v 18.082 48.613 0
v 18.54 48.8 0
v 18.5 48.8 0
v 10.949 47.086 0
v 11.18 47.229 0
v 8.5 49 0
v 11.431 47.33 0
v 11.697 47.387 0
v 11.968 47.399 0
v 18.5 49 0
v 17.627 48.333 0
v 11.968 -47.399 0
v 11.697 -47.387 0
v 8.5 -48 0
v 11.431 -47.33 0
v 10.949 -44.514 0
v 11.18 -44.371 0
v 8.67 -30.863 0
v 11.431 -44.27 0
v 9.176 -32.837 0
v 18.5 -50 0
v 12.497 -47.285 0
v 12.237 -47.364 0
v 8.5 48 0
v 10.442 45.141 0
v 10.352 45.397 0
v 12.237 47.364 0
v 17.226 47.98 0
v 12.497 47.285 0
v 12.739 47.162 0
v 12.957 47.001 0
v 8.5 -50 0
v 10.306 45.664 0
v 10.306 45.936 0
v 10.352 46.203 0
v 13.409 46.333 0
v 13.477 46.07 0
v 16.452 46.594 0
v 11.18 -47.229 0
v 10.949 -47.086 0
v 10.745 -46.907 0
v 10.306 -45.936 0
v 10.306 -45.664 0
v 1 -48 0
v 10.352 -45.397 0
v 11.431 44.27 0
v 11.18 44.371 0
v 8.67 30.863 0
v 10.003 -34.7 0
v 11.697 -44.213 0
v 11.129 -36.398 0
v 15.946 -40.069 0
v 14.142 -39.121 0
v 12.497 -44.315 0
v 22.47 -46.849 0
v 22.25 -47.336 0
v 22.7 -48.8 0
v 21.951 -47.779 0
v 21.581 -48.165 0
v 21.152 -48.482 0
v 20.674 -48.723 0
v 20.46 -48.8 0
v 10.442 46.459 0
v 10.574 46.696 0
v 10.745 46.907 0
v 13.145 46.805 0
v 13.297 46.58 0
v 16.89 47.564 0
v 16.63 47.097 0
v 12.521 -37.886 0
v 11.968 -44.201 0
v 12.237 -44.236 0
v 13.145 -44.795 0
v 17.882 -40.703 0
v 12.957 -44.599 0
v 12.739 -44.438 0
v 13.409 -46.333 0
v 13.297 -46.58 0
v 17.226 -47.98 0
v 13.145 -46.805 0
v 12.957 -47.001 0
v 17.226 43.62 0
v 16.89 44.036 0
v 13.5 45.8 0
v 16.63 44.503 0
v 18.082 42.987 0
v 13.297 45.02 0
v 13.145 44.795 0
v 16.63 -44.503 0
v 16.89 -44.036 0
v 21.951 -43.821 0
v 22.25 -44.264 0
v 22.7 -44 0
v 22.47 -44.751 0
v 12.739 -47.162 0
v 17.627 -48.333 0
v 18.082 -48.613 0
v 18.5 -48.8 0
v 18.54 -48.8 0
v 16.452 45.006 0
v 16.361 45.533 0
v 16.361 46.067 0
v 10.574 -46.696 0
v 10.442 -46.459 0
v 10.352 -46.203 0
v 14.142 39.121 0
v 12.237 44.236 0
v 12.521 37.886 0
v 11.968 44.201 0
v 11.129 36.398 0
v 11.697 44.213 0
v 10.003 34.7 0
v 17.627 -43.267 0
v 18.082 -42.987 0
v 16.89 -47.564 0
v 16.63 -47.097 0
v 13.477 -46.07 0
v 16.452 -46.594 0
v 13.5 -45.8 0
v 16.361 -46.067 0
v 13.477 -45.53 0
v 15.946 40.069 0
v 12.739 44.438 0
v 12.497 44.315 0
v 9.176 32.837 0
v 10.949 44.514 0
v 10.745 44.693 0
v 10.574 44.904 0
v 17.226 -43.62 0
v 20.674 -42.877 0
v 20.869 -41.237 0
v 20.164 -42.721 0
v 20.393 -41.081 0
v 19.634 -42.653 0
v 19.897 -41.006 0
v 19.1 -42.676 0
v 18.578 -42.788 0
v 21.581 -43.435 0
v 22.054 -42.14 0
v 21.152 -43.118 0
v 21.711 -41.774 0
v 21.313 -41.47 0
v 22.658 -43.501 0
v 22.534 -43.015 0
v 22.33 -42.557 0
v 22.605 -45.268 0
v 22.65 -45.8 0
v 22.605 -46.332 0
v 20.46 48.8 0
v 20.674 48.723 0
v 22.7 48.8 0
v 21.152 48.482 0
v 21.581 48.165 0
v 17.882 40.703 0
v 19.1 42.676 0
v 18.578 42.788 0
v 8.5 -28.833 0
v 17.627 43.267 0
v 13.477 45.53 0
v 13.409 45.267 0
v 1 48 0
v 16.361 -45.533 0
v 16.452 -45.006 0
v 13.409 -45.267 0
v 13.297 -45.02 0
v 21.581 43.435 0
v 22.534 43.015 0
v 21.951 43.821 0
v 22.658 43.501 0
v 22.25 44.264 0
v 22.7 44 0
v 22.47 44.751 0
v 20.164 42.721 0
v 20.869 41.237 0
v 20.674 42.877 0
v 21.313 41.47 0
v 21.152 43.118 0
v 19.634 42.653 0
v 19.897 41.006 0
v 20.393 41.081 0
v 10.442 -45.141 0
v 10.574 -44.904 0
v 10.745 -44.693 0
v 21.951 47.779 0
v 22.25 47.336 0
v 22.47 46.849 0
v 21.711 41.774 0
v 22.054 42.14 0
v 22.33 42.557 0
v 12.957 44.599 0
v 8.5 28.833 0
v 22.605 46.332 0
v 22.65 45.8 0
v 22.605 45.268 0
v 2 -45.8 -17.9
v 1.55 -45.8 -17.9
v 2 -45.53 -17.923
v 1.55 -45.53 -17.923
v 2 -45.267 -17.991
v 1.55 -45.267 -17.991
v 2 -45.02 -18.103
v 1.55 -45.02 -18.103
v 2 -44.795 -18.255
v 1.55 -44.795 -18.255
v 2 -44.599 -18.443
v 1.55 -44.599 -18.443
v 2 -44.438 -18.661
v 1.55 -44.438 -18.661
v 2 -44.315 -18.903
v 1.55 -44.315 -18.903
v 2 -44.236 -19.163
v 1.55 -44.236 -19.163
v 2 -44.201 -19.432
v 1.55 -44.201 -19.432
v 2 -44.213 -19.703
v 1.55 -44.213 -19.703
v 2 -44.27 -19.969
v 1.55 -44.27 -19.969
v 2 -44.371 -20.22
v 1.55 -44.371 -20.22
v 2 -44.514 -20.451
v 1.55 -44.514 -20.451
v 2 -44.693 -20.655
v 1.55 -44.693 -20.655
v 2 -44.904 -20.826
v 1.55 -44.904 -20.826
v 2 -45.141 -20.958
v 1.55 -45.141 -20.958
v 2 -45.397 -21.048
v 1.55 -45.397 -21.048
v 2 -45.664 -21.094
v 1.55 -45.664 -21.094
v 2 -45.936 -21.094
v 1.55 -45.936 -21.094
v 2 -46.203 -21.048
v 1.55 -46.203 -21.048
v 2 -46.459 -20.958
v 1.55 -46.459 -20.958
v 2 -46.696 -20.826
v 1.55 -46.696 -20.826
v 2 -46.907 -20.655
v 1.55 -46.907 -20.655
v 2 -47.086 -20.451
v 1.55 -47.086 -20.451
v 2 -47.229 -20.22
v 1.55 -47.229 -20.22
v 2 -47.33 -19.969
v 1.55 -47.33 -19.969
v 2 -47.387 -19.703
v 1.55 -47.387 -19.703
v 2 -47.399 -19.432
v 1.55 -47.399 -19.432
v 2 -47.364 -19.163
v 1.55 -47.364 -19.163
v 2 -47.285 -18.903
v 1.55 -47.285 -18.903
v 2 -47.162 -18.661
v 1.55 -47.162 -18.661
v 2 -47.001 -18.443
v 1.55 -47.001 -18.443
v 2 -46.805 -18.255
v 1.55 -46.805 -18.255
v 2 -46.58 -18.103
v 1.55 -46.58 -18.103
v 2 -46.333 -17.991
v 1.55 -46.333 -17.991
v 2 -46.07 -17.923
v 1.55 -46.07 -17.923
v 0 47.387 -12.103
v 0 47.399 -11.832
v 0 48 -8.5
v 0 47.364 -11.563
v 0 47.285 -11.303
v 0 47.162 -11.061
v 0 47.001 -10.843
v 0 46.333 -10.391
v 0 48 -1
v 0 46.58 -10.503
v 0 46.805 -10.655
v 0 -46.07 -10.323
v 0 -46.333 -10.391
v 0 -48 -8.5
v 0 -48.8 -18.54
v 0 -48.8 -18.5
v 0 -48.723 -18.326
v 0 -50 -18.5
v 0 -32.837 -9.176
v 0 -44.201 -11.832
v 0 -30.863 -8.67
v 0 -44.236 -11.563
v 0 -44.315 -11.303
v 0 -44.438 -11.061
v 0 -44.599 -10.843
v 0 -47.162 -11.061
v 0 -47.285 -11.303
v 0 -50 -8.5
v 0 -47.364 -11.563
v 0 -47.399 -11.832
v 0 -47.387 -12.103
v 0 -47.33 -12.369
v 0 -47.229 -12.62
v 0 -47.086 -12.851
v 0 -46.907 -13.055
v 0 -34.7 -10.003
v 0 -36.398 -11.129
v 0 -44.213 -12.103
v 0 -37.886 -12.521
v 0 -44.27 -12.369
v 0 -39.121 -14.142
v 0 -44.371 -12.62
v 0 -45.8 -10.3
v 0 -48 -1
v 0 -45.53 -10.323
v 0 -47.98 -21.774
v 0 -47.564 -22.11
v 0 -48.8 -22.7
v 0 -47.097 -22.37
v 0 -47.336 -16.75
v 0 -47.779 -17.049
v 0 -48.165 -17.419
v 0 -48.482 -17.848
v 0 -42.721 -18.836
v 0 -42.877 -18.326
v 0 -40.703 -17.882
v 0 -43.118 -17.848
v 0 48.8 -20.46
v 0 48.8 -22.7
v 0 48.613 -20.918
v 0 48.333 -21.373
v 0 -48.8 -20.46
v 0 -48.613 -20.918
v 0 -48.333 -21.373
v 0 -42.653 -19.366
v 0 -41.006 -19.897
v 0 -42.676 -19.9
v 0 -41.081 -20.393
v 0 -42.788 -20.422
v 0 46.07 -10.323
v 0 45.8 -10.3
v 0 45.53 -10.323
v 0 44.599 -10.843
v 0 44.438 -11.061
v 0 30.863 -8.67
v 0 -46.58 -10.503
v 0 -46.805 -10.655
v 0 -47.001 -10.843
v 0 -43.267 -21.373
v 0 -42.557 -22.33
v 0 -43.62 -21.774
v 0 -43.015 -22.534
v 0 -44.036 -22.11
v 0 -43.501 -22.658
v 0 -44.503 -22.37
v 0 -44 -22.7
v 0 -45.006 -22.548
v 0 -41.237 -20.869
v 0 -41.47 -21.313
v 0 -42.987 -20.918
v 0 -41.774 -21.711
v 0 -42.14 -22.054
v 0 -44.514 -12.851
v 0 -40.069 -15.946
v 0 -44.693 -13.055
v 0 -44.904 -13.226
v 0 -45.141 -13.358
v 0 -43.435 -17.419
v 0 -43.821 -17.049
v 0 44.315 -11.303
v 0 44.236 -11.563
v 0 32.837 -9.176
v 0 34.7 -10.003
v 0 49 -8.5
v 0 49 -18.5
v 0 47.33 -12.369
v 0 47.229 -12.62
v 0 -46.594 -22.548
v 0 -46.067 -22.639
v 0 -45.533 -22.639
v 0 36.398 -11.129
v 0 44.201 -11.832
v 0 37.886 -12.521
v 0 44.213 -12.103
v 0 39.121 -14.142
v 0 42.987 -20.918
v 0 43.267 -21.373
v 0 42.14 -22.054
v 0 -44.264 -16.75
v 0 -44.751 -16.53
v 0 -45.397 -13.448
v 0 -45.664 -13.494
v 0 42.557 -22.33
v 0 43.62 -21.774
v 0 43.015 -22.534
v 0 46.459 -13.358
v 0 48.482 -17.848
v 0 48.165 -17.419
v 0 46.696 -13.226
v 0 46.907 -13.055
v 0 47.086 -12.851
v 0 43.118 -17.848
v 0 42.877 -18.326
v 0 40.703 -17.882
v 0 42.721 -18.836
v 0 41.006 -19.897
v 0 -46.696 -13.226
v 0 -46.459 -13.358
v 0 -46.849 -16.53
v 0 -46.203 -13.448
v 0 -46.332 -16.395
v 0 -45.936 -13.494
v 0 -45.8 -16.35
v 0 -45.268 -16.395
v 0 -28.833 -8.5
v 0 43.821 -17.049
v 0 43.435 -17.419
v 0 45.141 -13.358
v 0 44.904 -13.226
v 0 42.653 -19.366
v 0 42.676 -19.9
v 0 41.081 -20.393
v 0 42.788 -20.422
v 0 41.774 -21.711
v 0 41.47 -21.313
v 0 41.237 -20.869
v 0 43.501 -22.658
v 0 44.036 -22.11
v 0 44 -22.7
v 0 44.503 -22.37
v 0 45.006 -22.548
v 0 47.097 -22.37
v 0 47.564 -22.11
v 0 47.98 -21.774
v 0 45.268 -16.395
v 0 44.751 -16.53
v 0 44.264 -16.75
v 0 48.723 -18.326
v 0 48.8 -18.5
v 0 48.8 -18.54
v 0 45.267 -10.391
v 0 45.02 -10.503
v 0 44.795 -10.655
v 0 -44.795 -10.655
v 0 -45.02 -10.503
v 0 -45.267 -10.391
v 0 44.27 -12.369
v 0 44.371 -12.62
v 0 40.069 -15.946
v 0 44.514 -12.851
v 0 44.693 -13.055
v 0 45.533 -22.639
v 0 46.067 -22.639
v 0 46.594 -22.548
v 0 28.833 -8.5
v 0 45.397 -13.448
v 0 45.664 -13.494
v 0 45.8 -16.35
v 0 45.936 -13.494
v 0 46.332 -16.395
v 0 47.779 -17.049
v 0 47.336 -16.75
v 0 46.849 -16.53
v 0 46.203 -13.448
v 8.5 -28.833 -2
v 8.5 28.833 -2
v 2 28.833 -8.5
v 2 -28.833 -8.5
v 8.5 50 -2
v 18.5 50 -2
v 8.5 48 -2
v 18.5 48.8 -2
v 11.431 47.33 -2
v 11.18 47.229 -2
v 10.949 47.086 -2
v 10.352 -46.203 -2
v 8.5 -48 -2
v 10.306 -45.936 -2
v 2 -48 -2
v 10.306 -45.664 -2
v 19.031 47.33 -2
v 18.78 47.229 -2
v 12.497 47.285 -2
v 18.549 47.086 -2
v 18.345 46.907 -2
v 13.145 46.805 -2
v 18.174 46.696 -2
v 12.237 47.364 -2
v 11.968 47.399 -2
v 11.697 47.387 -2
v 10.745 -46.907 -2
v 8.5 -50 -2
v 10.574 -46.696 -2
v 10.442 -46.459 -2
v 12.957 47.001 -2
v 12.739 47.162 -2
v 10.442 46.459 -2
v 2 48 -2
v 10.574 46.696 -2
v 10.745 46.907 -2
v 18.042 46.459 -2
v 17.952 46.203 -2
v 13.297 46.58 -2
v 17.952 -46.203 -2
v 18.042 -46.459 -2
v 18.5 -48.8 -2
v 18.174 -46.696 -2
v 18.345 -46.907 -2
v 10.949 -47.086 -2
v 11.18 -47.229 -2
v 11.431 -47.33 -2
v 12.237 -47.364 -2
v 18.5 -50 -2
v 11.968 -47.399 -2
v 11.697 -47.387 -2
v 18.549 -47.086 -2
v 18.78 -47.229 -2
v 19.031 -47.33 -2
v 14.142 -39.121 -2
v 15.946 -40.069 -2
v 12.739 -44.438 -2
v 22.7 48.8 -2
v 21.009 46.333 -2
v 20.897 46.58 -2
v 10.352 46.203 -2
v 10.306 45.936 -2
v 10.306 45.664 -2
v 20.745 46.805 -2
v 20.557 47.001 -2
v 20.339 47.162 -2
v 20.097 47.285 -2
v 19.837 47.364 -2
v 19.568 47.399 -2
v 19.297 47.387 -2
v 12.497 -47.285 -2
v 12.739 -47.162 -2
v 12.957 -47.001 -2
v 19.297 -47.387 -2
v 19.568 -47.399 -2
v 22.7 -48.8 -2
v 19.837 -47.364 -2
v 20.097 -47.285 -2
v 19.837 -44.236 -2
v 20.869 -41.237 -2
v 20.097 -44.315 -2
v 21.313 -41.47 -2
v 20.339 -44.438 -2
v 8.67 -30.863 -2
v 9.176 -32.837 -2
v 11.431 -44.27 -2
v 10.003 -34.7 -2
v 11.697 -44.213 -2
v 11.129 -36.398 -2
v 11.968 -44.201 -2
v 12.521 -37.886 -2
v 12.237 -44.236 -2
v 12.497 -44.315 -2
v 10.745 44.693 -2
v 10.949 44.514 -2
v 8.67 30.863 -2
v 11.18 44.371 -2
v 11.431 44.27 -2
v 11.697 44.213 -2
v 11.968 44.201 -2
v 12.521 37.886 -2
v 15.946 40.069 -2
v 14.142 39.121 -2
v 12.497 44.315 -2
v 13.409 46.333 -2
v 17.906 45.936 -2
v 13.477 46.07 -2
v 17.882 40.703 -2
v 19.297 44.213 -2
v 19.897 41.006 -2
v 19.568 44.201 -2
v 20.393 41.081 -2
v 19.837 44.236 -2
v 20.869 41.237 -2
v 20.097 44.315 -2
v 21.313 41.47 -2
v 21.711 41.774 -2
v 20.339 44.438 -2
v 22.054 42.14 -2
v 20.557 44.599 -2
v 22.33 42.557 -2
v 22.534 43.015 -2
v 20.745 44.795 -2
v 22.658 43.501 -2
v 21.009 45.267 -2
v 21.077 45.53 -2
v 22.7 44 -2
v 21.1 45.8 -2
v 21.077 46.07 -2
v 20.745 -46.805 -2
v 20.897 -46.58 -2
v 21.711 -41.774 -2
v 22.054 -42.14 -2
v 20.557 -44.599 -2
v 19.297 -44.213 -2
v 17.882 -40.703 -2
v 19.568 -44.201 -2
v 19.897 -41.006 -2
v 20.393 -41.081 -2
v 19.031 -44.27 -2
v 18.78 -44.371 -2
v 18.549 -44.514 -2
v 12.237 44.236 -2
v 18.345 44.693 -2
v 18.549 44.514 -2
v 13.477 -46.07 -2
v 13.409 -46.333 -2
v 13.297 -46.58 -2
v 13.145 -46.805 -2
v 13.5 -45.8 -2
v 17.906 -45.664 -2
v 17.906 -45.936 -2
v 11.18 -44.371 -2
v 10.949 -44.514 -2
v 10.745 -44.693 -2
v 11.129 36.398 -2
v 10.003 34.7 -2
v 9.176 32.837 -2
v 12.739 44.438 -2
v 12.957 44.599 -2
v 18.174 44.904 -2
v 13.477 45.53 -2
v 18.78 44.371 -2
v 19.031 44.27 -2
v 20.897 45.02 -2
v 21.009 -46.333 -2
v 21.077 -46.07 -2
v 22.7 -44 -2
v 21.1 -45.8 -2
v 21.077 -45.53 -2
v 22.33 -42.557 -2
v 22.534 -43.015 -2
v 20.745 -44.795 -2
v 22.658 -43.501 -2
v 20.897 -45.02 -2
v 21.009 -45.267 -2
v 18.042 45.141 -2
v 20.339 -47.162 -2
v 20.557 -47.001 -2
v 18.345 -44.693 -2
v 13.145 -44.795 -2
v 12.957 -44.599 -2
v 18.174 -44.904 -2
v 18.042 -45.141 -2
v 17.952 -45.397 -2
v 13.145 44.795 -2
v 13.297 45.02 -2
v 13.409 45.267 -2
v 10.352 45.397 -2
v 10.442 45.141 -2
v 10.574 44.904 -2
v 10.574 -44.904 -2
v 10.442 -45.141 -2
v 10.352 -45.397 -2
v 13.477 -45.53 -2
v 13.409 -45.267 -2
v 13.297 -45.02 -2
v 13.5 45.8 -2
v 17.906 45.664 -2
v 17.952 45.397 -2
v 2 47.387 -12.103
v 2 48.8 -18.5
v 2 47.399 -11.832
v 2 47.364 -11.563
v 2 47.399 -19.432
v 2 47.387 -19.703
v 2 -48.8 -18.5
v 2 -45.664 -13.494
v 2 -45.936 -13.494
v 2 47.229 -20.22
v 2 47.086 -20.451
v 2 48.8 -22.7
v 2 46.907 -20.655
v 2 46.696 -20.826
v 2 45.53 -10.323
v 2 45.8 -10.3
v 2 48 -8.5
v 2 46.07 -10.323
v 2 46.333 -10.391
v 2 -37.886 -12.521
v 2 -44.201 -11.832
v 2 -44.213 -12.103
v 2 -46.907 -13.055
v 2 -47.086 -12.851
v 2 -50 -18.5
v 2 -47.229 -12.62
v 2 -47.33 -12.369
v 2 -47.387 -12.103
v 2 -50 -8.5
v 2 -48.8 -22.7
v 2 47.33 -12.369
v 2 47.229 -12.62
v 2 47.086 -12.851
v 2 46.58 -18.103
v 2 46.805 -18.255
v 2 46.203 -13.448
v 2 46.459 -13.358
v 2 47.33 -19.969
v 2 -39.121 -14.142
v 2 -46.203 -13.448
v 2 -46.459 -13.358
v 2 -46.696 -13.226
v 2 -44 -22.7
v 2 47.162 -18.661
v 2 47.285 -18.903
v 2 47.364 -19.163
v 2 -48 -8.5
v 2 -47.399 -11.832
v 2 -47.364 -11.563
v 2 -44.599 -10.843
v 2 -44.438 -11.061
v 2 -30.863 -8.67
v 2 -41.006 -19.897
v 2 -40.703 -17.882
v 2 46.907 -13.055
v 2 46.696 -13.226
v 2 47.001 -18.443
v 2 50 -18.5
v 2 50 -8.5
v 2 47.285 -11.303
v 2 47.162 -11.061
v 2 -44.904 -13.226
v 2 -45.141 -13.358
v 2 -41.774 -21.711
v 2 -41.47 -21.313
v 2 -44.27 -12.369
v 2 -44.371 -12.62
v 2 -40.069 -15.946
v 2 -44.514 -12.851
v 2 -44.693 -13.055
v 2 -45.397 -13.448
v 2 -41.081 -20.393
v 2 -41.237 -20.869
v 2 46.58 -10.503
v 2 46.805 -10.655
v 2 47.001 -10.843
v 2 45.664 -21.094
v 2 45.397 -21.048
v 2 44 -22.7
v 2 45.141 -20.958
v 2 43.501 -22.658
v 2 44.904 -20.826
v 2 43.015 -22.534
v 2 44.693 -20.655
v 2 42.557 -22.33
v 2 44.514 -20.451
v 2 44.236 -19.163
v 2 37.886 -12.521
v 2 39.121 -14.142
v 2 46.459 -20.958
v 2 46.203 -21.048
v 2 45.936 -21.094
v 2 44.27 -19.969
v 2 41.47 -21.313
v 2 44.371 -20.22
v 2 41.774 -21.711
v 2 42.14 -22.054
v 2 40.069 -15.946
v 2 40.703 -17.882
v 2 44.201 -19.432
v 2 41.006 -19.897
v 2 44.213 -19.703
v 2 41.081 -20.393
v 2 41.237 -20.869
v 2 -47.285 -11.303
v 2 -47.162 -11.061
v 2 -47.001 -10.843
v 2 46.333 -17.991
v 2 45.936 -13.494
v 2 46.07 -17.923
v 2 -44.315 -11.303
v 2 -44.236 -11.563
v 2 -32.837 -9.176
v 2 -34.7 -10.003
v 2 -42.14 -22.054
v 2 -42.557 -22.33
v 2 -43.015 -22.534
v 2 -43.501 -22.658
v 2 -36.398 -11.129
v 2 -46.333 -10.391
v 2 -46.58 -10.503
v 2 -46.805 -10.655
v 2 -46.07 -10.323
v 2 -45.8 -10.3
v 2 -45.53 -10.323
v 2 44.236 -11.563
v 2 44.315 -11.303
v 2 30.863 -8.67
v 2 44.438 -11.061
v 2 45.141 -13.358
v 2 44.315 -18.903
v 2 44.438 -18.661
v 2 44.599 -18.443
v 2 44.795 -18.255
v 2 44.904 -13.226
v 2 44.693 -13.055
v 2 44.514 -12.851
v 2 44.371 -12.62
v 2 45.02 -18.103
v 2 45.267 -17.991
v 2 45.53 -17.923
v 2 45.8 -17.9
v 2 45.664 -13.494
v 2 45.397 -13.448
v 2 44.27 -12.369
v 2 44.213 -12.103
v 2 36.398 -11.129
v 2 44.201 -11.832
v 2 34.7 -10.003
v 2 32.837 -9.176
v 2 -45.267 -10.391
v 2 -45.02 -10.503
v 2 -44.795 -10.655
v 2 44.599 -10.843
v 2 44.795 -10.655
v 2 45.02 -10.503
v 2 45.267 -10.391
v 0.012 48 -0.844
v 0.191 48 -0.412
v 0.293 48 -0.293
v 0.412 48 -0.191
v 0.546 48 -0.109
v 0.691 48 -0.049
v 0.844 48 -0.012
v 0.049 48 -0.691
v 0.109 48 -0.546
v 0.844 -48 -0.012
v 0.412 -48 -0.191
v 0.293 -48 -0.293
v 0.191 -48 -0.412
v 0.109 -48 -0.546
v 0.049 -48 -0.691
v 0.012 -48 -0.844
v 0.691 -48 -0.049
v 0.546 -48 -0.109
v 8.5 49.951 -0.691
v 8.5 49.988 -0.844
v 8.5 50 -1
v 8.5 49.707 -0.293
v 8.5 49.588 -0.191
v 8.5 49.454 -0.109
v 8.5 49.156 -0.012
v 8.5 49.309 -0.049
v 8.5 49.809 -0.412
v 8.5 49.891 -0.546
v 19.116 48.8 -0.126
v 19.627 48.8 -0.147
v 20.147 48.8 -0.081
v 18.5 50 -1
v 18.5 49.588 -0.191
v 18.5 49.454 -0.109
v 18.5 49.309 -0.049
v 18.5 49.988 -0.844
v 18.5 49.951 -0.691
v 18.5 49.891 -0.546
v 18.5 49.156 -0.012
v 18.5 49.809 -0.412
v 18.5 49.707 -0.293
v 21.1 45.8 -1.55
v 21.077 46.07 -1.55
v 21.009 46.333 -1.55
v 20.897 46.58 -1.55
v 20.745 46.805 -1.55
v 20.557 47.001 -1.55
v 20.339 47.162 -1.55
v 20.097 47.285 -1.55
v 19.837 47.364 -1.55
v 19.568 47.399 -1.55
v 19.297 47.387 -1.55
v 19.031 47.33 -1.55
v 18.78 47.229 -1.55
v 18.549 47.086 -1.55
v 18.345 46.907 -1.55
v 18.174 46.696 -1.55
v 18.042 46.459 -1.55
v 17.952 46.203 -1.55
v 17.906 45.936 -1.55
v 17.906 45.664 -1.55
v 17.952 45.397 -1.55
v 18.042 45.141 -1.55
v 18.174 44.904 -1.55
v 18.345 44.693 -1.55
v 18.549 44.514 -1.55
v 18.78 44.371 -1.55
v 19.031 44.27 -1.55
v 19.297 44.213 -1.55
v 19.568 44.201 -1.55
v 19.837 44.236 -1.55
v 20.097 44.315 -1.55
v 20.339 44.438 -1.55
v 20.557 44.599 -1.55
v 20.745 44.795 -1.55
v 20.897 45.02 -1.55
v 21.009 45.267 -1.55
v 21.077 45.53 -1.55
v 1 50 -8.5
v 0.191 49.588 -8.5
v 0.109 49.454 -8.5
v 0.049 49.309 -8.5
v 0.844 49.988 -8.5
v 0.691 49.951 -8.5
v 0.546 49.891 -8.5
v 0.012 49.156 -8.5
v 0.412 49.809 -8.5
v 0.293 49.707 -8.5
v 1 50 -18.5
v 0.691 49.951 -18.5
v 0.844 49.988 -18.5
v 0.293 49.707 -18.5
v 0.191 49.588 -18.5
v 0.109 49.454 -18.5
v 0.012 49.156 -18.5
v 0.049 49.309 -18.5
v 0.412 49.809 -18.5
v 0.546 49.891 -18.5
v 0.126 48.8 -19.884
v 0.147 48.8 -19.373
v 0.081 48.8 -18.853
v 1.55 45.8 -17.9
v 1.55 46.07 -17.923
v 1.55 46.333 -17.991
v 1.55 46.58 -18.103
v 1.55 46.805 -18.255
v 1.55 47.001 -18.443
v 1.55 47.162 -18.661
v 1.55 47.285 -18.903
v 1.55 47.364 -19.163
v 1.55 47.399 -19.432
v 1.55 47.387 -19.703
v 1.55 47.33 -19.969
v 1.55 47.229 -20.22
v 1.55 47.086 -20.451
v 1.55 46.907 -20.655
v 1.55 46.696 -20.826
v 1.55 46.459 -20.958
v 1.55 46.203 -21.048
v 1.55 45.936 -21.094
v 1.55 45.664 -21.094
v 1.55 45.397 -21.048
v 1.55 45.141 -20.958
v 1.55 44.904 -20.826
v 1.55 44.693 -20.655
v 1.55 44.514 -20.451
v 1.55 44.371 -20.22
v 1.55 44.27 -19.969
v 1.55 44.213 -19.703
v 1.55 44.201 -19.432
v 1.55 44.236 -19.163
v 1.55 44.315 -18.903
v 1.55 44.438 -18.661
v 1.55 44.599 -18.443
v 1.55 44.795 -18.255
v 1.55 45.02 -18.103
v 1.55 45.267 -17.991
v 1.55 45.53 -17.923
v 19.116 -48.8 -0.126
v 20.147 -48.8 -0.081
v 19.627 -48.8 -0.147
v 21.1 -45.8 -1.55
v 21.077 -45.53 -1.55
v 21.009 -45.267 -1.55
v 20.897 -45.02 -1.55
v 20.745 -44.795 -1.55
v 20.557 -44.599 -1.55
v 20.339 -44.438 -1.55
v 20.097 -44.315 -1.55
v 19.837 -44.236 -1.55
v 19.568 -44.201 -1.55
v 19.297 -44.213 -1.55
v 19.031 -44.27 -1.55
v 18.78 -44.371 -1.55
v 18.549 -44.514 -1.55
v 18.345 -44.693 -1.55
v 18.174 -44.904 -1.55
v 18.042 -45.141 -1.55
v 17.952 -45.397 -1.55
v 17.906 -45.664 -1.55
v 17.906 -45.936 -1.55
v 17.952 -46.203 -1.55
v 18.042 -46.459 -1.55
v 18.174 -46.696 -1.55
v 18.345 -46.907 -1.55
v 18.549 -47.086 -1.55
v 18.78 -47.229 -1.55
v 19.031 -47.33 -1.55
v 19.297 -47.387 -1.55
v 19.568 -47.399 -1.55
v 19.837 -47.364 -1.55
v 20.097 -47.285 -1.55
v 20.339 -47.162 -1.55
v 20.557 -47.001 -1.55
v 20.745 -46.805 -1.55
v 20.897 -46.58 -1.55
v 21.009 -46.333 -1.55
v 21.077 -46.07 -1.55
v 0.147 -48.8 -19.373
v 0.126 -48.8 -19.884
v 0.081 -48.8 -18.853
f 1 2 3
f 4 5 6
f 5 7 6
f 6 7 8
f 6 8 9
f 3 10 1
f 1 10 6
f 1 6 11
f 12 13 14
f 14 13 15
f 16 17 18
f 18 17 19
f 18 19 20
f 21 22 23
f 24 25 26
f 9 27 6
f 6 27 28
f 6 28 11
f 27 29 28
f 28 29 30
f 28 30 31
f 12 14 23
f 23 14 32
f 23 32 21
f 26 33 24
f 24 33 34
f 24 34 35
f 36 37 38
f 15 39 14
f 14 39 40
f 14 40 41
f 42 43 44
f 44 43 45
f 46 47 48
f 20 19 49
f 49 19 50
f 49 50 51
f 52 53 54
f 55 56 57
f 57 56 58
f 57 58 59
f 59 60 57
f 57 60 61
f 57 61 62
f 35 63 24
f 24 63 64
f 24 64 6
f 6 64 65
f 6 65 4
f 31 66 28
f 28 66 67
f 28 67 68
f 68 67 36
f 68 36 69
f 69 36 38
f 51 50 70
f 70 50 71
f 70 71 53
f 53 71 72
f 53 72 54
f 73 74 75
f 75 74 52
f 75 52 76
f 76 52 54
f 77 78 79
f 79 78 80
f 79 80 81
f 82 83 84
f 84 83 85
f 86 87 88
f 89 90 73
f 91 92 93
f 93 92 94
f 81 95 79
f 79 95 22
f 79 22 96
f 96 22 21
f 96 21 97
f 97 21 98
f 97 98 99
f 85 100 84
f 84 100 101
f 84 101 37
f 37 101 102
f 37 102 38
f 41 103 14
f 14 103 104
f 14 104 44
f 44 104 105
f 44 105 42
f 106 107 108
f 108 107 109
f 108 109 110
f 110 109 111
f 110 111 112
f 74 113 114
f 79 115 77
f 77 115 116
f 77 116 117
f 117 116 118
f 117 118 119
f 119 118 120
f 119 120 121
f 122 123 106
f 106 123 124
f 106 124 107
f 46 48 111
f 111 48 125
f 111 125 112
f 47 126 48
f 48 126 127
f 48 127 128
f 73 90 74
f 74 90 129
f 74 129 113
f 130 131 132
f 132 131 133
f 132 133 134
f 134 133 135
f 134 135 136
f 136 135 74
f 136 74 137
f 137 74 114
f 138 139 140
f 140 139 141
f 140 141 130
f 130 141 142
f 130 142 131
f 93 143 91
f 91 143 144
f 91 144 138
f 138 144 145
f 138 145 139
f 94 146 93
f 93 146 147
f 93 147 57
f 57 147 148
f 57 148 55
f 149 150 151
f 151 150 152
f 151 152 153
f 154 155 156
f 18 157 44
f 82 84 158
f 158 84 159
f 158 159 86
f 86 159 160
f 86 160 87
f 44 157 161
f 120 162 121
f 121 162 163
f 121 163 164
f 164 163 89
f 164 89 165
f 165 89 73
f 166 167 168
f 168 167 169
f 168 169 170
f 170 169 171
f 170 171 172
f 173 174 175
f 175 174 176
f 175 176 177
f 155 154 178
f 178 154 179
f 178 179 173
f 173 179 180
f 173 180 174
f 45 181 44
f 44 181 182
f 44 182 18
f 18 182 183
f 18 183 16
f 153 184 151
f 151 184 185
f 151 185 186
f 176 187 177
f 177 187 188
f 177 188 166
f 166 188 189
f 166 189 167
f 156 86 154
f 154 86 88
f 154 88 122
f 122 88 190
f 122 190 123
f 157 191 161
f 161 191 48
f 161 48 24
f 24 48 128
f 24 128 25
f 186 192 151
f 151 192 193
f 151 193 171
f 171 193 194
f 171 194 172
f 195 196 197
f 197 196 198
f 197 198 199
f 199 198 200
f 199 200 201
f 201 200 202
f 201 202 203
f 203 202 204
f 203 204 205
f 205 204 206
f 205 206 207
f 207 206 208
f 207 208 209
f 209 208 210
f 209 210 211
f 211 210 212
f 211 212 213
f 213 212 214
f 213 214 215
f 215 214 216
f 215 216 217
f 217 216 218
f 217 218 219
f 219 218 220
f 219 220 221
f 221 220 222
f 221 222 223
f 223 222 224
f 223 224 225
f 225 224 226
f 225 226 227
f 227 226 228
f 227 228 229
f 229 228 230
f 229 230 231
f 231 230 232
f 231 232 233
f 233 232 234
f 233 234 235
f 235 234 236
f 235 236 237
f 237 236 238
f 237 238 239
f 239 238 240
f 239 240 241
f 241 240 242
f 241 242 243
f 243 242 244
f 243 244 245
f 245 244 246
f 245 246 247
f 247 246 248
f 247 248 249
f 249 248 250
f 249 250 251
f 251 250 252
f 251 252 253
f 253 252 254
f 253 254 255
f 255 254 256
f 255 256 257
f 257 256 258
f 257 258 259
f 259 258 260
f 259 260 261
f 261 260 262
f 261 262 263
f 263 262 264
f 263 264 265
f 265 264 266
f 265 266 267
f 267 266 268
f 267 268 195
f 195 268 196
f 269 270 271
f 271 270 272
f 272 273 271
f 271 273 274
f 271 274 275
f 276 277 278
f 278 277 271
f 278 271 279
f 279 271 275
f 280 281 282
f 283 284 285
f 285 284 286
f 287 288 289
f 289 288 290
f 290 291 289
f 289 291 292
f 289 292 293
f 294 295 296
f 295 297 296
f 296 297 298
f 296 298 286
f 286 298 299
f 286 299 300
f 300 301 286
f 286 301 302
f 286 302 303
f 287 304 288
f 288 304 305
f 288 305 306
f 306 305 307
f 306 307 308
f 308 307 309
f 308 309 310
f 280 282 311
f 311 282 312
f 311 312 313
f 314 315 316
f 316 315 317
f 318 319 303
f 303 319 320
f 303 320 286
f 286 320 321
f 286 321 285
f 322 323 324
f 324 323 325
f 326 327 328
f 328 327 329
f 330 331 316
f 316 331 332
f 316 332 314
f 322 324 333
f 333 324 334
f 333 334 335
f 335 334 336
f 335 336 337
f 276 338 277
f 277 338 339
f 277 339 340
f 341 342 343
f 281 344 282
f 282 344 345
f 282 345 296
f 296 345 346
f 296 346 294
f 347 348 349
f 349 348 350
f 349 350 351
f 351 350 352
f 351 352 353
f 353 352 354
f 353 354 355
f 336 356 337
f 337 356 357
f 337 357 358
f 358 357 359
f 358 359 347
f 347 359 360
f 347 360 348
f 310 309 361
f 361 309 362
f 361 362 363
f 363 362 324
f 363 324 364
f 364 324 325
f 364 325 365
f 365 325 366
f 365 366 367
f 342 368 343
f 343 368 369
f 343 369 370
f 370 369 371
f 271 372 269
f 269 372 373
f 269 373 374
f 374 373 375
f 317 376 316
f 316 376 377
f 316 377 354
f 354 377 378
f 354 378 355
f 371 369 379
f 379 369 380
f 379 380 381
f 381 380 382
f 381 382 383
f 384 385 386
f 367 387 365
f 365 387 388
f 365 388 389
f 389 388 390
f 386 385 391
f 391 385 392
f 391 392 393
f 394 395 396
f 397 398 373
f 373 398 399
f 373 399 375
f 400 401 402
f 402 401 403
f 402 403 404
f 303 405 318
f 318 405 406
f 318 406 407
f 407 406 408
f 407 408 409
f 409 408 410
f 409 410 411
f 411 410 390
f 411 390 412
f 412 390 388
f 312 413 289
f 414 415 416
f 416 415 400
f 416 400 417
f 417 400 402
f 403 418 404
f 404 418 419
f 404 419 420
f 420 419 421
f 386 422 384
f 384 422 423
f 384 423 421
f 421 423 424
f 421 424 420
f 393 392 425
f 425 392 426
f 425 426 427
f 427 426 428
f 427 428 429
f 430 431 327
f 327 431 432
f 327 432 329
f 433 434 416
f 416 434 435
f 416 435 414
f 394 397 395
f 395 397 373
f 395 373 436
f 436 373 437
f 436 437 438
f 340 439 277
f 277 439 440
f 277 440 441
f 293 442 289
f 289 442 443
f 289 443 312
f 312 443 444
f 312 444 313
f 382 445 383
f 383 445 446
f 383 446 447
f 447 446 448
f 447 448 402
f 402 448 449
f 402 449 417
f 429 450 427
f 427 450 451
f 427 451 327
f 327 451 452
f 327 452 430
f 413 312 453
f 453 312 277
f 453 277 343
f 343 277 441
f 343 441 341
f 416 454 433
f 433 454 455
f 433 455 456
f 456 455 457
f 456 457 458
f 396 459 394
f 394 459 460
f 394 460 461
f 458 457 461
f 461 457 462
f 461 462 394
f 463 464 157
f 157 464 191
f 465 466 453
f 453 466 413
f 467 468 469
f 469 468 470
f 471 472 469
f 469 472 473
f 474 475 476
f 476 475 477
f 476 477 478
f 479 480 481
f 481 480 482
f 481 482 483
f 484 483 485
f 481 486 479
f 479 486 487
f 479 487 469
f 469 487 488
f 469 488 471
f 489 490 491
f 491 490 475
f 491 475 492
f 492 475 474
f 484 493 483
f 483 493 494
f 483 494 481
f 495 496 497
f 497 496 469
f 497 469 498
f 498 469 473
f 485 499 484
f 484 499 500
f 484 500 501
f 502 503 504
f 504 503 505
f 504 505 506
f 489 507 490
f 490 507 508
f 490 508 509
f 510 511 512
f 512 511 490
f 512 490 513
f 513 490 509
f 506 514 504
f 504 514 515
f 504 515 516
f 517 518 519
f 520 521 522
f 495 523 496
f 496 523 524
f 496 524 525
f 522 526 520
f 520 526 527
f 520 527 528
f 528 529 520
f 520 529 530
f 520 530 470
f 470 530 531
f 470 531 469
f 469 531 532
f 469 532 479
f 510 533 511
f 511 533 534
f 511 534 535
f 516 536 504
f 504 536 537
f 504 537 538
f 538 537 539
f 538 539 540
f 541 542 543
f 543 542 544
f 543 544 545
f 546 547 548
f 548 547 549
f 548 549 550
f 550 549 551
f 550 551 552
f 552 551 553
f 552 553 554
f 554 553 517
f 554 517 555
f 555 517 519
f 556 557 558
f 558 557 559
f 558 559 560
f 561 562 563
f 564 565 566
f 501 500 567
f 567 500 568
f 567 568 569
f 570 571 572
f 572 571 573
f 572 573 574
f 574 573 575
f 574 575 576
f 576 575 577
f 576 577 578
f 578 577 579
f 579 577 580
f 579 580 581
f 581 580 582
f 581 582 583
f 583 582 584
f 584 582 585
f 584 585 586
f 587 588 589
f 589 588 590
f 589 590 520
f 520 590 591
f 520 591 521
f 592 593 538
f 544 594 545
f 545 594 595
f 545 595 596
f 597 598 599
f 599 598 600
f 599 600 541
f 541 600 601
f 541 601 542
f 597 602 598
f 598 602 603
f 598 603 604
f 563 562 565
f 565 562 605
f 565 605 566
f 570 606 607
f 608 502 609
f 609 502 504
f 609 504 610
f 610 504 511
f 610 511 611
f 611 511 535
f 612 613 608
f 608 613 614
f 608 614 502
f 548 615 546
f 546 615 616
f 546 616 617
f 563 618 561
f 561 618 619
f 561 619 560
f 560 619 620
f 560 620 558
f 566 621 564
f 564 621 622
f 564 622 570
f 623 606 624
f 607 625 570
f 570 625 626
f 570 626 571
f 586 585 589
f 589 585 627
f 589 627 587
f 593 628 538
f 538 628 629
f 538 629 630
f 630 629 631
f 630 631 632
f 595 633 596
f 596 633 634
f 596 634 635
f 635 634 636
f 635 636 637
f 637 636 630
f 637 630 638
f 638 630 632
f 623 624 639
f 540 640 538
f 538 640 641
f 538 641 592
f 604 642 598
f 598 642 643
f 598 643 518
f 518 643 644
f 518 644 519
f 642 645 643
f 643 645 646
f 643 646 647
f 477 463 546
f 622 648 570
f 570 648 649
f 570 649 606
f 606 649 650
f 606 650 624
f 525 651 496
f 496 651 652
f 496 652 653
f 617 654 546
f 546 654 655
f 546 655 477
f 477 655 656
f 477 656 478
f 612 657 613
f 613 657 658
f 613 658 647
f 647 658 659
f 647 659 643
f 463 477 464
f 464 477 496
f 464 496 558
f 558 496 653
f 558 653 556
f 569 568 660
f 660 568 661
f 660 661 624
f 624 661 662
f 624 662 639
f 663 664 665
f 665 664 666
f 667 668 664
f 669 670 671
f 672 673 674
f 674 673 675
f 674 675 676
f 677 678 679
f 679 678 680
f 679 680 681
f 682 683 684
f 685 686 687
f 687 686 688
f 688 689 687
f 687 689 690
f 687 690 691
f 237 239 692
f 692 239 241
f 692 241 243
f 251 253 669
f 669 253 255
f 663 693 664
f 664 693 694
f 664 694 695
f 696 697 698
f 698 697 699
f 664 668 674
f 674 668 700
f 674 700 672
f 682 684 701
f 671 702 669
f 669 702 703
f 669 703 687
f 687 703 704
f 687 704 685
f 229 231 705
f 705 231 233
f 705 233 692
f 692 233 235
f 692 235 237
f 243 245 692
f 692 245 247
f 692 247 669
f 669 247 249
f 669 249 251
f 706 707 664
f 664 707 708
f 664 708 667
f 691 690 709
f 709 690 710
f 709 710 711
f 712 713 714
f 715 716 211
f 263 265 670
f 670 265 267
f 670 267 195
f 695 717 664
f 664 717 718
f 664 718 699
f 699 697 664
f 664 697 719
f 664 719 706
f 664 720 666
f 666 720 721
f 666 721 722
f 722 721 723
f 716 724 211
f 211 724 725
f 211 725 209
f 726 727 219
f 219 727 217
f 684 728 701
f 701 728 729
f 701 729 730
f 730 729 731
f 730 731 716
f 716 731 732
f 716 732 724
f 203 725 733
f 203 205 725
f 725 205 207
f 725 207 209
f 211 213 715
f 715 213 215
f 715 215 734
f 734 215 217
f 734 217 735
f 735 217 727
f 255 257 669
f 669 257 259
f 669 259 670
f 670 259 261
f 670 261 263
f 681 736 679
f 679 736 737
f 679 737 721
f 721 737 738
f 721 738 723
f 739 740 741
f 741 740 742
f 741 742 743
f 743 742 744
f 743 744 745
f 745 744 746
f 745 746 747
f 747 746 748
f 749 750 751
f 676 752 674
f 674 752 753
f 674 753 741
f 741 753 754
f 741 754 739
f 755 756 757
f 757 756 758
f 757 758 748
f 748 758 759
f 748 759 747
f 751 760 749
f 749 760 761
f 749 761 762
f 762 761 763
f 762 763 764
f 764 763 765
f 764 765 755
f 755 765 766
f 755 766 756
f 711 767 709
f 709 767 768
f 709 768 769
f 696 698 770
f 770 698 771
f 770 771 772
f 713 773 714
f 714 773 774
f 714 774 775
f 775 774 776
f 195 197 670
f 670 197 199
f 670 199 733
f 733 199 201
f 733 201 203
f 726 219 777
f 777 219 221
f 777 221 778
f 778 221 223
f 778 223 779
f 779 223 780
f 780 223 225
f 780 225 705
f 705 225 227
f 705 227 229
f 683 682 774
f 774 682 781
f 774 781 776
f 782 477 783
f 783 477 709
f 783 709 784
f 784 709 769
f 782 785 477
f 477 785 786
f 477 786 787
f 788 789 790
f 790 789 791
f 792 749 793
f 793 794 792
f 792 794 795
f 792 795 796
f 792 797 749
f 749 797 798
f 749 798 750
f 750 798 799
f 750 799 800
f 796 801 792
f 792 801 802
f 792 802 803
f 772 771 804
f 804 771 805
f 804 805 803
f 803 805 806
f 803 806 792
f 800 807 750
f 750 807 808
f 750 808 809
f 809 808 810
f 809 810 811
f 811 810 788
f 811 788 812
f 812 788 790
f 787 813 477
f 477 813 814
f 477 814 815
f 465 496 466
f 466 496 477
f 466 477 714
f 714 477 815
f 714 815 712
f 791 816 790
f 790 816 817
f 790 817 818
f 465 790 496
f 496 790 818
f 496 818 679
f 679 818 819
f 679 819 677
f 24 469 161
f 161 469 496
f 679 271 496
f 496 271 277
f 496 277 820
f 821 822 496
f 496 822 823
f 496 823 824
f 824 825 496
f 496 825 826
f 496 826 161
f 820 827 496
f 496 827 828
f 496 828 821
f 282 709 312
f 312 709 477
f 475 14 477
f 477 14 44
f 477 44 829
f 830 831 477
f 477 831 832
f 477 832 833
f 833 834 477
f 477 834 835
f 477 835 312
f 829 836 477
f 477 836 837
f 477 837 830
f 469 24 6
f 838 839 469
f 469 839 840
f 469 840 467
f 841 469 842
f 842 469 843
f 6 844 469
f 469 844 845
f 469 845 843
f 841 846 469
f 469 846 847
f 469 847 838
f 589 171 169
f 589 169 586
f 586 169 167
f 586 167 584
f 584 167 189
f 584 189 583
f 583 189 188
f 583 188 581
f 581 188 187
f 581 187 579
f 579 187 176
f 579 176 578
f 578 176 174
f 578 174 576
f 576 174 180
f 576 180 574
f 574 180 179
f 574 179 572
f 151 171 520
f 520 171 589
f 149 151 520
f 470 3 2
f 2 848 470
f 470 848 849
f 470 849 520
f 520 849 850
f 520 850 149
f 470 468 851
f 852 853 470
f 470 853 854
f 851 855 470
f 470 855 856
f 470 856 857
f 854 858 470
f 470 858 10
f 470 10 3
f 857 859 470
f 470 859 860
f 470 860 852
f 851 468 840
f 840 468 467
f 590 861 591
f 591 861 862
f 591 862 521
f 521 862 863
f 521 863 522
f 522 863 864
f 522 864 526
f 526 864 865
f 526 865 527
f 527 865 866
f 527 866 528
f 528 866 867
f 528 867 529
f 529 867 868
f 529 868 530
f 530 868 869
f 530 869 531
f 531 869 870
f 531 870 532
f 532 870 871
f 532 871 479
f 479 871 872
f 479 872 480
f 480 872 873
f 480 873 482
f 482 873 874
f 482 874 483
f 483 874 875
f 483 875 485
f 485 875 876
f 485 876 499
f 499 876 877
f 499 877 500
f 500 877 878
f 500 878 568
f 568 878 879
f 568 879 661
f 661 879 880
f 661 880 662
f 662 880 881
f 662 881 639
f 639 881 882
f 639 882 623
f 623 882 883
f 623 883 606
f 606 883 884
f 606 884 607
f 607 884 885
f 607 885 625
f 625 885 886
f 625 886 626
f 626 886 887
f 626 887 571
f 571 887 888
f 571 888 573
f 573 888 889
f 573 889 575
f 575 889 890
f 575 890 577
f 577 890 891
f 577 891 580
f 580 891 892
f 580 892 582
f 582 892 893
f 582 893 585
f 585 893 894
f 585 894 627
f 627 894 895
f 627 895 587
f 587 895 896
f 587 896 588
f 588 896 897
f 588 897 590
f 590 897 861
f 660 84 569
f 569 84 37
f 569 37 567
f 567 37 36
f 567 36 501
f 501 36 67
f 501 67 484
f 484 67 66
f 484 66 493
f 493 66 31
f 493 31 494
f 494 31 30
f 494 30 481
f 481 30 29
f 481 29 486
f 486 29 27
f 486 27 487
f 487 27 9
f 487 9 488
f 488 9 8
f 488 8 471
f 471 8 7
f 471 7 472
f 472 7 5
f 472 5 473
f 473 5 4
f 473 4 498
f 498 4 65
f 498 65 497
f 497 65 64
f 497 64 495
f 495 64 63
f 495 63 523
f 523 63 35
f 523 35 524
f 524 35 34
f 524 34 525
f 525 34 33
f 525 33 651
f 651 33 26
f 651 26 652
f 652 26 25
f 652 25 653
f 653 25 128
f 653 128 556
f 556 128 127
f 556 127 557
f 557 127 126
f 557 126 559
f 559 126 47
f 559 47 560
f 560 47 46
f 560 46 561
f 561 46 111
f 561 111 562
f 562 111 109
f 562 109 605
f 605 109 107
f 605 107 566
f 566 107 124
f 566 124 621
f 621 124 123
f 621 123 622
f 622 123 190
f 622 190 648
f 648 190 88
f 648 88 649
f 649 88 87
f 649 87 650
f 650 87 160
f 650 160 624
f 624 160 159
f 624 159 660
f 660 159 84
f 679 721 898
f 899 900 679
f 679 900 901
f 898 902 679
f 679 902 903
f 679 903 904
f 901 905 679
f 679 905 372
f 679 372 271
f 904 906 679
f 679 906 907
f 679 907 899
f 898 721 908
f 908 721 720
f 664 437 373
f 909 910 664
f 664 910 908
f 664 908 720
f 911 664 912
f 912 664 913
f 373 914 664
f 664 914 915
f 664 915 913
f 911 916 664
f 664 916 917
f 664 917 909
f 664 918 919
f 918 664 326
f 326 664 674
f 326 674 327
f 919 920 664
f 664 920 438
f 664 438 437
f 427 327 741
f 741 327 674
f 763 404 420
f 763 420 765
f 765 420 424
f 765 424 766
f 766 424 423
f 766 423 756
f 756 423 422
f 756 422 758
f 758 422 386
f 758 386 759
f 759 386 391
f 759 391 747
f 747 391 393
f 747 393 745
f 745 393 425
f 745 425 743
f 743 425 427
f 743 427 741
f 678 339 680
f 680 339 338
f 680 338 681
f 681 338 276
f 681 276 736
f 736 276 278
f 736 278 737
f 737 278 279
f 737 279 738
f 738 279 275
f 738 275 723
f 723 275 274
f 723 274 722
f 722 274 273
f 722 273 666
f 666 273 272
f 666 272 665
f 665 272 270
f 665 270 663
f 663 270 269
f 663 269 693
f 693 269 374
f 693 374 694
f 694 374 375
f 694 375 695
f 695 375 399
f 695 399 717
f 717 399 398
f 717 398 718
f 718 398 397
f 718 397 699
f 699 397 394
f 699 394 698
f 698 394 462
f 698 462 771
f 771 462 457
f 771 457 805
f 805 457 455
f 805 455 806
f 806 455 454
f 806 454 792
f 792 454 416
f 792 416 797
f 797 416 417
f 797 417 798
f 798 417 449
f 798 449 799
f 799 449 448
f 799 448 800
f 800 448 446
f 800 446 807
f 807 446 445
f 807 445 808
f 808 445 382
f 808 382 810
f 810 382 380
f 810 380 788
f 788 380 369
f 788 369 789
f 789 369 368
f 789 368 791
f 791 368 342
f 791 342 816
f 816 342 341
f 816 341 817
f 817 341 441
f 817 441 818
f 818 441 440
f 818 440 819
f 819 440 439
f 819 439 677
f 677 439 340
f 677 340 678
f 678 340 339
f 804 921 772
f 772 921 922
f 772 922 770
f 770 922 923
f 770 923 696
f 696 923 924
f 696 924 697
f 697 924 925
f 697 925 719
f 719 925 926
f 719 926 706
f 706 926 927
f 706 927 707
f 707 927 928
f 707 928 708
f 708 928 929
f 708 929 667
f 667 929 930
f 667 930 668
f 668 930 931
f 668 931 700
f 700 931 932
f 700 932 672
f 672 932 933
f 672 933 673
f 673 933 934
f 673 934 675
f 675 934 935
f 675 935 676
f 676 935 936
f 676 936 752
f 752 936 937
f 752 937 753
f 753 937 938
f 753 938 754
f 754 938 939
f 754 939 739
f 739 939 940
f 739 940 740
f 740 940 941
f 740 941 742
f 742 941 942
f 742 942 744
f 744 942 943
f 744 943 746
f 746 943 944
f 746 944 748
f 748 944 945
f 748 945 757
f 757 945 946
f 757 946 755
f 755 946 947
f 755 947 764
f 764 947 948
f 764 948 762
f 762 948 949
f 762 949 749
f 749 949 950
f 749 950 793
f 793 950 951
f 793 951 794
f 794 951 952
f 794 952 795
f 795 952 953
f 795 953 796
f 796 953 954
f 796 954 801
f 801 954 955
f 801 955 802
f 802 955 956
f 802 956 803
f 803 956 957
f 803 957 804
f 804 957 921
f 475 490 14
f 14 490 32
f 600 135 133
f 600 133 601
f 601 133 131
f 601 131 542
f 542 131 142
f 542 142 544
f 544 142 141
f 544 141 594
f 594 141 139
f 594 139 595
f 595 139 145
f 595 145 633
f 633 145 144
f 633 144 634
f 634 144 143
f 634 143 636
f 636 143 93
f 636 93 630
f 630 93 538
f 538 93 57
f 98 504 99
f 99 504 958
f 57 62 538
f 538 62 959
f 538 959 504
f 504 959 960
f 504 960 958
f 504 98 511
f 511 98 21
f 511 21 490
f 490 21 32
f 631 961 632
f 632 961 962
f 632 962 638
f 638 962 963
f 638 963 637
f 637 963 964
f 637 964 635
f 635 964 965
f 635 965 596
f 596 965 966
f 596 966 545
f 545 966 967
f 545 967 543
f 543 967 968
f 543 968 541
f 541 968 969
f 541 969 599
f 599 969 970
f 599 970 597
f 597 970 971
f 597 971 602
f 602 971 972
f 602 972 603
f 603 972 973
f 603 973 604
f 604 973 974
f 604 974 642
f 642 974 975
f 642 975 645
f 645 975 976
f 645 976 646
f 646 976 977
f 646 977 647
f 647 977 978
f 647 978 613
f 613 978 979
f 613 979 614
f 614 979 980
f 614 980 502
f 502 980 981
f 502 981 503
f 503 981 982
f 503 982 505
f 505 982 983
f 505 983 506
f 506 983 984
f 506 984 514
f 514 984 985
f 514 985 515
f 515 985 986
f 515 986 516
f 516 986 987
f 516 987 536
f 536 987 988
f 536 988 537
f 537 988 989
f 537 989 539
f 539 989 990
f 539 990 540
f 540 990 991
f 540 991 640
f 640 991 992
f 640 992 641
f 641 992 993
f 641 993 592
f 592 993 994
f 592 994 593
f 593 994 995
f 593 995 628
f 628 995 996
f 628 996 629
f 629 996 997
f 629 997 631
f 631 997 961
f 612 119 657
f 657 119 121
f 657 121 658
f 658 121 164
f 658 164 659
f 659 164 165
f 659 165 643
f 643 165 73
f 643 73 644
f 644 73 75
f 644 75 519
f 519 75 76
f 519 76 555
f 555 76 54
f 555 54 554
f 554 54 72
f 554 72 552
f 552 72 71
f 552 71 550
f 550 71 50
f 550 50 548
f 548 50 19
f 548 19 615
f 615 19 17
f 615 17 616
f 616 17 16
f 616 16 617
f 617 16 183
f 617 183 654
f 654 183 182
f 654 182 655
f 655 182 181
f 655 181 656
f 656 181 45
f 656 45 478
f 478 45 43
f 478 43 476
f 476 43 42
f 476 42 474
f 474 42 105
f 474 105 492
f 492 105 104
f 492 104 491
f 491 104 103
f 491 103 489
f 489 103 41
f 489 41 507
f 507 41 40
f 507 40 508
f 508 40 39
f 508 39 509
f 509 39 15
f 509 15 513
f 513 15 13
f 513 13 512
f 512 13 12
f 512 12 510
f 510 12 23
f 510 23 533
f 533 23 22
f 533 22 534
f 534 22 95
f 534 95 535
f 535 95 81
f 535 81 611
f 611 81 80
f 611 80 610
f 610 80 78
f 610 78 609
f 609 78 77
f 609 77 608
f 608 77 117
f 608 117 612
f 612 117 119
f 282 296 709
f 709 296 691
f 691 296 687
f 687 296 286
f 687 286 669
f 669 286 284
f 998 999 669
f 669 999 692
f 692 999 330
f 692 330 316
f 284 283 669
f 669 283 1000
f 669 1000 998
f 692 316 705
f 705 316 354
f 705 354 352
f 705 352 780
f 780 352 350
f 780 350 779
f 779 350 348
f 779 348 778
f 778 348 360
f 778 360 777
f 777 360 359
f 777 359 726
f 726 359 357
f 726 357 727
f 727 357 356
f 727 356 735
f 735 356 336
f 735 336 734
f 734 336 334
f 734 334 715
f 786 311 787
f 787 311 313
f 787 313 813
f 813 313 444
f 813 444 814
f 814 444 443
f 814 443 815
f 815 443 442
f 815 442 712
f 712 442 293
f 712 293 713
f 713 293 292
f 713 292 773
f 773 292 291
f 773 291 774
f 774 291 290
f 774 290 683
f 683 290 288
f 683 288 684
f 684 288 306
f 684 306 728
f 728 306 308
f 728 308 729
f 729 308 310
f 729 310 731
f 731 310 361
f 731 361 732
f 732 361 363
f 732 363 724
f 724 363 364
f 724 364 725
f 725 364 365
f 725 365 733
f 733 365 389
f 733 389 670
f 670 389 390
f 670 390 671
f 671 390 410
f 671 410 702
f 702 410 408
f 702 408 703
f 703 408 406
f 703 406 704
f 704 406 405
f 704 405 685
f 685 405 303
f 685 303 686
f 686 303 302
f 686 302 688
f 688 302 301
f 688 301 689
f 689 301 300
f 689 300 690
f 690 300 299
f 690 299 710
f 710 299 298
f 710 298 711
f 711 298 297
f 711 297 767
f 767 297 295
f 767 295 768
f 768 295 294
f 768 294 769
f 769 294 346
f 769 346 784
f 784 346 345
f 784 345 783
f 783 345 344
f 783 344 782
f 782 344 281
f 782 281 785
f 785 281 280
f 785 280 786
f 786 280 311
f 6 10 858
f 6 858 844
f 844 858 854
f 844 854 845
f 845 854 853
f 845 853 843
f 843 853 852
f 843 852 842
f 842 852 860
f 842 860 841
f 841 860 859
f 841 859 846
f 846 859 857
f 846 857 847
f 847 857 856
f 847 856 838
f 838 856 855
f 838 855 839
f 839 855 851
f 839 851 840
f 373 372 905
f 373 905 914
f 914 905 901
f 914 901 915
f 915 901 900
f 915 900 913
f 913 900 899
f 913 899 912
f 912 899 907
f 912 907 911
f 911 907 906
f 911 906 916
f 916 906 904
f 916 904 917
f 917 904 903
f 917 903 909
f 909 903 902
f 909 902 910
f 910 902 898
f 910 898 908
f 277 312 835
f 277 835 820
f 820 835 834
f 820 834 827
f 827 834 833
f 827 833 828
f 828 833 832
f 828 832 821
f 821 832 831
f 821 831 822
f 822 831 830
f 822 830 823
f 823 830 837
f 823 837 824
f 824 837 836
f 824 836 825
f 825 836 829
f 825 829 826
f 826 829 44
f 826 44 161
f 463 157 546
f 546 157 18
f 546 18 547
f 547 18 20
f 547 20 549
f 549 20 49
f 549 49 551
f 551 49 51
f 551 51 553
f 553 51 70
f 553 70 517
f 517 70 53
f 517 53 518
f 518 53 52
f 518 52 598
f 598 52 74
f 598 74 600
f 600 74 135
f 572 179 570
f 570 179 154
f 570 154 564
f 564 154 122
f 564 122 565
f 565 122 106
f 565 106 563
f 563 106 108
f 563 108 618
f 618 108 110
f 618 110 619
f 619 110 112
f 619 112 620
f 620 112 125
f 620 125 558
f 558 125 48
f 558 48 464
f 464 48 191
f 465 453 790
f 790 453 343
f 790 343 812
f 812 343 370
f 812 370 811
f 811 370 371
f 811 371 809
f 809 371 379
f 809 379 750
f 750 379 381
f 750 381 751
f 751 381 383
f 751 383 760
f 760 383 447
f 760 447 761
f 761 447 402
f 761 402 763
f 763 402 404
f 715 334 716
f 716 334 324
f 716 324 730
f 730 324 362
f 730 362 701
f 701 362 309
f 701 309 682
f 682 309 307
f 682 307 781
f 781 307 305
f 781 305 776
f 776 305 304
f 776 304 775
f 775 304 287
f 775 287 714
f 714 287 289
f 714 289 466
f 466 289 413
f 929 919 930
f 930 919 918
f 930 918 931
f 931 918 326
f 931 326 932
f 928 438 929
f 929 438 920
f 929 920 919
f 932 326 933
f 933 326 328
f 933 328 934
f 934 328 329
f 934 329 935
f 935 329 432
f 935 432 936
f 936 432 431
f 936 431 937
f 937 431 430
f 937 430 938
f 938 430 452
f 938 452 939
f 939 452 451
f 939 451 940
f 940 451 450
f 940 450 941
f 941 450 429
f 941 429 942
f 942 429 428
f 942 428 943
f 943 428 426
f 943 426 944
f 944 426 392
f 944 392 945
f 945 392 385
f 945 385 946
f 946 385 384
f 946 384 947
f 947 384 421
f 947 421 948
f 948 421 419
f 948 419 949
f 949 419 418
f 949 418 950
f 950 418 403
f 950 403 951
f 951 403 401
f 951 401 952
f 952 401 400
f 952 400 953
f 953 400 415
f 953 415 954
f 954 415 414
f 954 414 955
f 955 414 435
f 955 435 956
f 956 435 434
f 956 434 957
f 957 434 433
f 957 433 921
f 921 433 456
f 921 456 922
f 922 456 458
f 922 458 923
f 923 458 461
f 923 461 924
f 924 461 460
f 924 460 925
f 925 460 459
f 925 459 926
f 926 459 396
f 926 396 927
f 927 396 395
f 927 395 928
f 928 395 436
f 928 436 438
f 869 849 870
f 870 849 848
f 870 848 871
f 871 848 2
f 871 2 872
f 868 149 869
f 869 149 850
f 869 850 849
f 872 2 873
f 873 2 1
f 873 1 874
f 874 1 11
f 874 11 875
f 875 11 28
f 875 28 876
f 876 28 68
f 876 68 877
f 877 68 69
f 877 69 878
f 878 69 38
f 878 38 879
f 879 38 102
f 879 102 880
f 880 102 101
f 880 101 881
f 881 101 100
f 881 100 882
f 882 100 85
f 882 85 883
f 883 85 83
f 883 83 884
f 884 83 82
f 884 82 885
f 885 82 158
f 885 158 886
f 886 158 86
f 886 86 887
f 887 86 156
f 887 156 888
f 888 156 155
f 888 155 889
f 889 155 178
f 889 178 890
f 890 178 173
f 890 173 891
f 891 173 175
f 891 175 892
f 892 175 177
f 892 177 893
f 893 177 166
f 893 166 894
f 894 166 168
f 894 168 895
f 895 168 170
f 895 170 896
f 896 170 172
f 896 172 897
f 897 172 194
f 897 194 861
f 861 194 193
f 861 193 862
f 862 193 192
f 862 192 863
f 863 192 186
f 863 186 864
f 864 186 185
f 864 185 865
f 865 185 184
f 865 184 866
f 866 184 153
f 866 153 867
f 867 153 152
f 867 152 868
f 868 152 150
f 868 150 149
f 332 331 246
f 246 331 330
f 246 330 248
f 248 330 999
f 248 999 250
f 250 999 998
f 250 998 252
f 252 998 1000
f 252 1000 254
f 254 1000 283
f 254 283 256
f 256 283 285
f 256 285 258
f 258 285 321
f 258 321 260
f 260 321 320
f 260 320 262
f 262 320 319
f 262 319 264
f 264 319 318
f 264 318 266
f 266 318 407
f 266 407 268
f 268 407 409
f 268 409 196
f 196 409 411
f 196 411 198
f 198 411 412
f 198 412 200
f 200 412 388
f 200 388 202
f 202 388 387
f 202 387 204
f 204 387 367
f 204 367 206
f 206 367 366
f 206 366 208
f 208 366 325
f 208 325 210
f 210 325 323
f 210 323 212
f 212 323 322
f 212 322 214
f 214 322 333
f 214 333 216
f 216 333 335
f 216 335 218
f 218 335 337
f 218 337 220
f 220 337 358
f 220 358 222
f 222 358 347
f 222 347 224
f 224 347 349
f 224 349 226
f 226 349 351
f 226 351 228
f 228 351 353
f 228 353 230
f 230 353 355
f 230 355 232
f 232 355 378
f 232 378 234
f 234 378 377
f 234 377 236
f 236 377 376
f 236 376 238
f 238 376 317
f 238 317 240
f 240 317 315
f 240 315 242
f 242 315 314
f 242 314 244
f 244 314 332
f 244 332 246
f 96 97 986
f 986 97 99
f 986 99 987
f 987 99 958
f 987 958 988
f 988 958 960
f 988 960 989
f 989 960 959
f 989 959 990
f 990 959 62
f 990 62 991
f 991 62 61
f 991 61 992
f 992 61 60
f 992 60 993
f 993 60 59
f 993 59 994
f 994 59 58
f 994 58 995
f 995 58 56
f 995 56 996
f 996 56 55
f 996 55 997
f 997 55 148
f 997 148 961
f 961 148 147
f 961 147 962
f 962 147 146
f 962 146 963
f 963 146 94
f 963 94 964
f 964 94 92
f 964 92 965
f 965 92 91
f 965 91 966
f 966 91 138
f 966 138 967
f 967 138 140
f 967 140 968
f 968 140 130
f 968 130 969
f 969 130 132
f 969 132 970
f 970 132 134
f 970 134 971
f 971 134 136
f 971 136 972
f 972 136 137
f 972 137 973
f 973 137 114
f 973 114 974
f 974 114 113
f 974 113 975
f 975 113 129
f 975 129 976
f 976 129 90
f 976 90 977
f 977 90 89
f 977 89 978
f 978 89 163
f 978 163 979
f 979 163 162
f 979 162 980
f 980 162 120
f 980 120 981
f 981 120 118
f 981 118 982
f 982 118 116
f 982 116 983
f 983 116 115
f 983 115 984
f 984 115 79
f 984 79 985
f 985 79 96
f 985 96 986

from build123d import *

# Parameters (mm, degrees)
BOSS_EXTRUDE3_DEPTH                                 = 48
SKETCH9_R                                           = 1.6
BOSS_EXTRUDE5_DEPTH                                 = 2
SKETCH6_R                                           = 1.6
BOSS_EXTRUDE6_DEPTH                                 = 2
FILLET4_R                                           = 1
FILLET5_R                                           = 12.2
CSK_FOR_M3_COUNTERSUNK_FLAT_HEAD_SCREW1_D           = 3.2
CSK_FOR_M3_COUNTERSUNK_FLAT_HEAD_SCREW1_CSINK_D     = 6.3
CSK_FOR_M3_COUNTERSUNK_FLAT_HEAD_SCREW1_CSINK_ANGLE = 90
CSK_FOR_M3_COUNTERSUNK_FLAT_HEAD_SCREW2_D           = 3.2
CSK_FOR_M3_COUNTERSUNK_FLAT_HEAD_SCREW2_CSINK_D     = 6.3
CSK_FOR_M3_COUNTERSUNK_FLAT_HEAD_SCREW2_CSINK_ANGLE = 90


with BuildPart() as part:
    # Sketch5 → Boss-Extrude3 (new, symmetric)
    with BuildSketch(Plane(origin=(0, 0, 0), x_dir=(1, 0, 0), z_dir=(0, 1, 0))):
        Polygon((0, 8.5), (0, 0), (8.5, 0), (8.5, 2), (2, 2), (2, 8.5), align=None)
    extrude(amount=BOSS_EXTRUDE3_DEPTH, both=True)

    # Sketch9 → Boss-Extrude5 (add)
    with BuildSketch(Plane.XY):
        with BuildLine():
            Line((8.5, 50), (18.5, 50))
            Line((18.5, 50), (18.5, 48.8))
            Line((18.5, 48.8), (22.7, 48.8))
            Line((22.7, 48.8), (22.7, 44))
            ThreePointArc((22.7, 44), (21.821320344, 41.878679656), (19.7, 41))
            Line((19.7, 41), (8.5, 41))
            Line((8.5, 41), (8.5, 50))
        make_face()
        with Locations((11.9, 45.8)):
            Circle(SKETCH9_R, mode=Mode.SUBTRACT)
        with Locations((19.5, 45.8)):
            Circle(SKETCH9_R, mode=Mode.SUBTRACT)
    boss_extrude5 = extrude(amount=-BOSS_EXTRUDE5_DEPTH)

    # Sketch6 → Boss-Extrude6 (add)
    with BuildSketch(Plane.ZY):
        with BuildLine():
            Line((-8.5, 41), (-19.7, 41))
            ThreePointArc((-19.7, 41), (-21.821320344, 41.878679656), (-22.7, 44))
            Line((-22.7, 44), (-22.7, 48.8))
            Line((-22.7, 48.8), (-18.5, 48.8))
            Line((-18.5, 48.8), (-18.5, 50))
            Line((-18.5, 50), (-8.5, 50))
            Line((-8.5, 50), (-8.5, 41))
        make_face()
        with Locations((-11.9, 45.8)):
            Circle(SKETCH6_R, mode=Mode.SUBTRACT)
        with Locations((-19.5, 45.8)):
            Circle(SKETCH6_R, mode=Mode.SUBTRACT)
    boss_extrude6 = extrude(amount=-BOSS_EXTRUDE6_DEPTH)

    # Mirror1: Boss-Extrude5, Boss-Extrude6 across plane
    add(boss_extrude5.mirror(Plane.ZX))
    add(boss_extrude6.mirror(Plane.ZX))

    # Fillet4
    fillet4_edges = [part.edges().sort_by_distance(p)[0] for p in [
        (0, 0, 0),
        (13.5, 50, 0),
        (0, 50, -13.5),
    ]]
    fillet(fillet4_edges, radius=FILLET4_R)

    # Fillet5
    fillet5_edges = [part.edges().sort_by_distance(p)[0] for p in [
        (8.5, -41, -1),
        (8.5, 41, -1),
        (1, 41, -8.5),
        (1, -41, -8.5),
    ]]
    fillet(fillet5_edges, radius=FILLET5_R)

    # CSK for M3 Countersunk Flat Head Screw1 (through all)
    with Locations(Plane.ZY):
        with Locations((-19.5, 45.8)):
            csk_for_m3_countersunk_flat_head_screw1 = CounterSinkHole(CSK_FOR_M3_COUNTERSUNK_FLAT_HEAD_SCREW1_D / 2, CSK_FOR_M3_COUNTERSUNK_FLAT_HEAD_SCREW1_CSINK_D / 2, counter_sink_angle=CSK_FOR_M3_COUNTERSUNK_FLAT_HEAD_SCREW1_CSINK_ANGLE)

    # CSK for M3 Countersunk Flat Head Screw2 (through all)
    with Locations(Plane.XY):
        with Locations((19.5, 45.8)):
            csk_for_m3_countersunk_flat_head_screw2 = CounterSinkHole(CSK_FOR_M3_COUNTERSUNK_FLAT_HEAD_SCREW2_D / 2, CSK_FOR_M3_COUNTERSUNK_FLAT_HEAD_SCREW2_CSINK_D / 2, counter_sink_angle=CSK_FOR_M3_COUNTERSUNK_FLAT_HEAD_SCREW2_CSINK_ANGLE)

    # Mirror2: CSK for M3 Countersunk Flat Head Screw1, CSK for M3 Countersunk Flat Head Screw2 across plane
    add(csk_for_m3_countersunk_flat_head_screw1.mirror(Plane.ZX), mode=Mode.SUBTRACT)
    add(csk_for_m3_countersunk_flat_head_screw2.mirror(Plane.ZX), mode=Mode.SUBTRACT)


solid = part.part
